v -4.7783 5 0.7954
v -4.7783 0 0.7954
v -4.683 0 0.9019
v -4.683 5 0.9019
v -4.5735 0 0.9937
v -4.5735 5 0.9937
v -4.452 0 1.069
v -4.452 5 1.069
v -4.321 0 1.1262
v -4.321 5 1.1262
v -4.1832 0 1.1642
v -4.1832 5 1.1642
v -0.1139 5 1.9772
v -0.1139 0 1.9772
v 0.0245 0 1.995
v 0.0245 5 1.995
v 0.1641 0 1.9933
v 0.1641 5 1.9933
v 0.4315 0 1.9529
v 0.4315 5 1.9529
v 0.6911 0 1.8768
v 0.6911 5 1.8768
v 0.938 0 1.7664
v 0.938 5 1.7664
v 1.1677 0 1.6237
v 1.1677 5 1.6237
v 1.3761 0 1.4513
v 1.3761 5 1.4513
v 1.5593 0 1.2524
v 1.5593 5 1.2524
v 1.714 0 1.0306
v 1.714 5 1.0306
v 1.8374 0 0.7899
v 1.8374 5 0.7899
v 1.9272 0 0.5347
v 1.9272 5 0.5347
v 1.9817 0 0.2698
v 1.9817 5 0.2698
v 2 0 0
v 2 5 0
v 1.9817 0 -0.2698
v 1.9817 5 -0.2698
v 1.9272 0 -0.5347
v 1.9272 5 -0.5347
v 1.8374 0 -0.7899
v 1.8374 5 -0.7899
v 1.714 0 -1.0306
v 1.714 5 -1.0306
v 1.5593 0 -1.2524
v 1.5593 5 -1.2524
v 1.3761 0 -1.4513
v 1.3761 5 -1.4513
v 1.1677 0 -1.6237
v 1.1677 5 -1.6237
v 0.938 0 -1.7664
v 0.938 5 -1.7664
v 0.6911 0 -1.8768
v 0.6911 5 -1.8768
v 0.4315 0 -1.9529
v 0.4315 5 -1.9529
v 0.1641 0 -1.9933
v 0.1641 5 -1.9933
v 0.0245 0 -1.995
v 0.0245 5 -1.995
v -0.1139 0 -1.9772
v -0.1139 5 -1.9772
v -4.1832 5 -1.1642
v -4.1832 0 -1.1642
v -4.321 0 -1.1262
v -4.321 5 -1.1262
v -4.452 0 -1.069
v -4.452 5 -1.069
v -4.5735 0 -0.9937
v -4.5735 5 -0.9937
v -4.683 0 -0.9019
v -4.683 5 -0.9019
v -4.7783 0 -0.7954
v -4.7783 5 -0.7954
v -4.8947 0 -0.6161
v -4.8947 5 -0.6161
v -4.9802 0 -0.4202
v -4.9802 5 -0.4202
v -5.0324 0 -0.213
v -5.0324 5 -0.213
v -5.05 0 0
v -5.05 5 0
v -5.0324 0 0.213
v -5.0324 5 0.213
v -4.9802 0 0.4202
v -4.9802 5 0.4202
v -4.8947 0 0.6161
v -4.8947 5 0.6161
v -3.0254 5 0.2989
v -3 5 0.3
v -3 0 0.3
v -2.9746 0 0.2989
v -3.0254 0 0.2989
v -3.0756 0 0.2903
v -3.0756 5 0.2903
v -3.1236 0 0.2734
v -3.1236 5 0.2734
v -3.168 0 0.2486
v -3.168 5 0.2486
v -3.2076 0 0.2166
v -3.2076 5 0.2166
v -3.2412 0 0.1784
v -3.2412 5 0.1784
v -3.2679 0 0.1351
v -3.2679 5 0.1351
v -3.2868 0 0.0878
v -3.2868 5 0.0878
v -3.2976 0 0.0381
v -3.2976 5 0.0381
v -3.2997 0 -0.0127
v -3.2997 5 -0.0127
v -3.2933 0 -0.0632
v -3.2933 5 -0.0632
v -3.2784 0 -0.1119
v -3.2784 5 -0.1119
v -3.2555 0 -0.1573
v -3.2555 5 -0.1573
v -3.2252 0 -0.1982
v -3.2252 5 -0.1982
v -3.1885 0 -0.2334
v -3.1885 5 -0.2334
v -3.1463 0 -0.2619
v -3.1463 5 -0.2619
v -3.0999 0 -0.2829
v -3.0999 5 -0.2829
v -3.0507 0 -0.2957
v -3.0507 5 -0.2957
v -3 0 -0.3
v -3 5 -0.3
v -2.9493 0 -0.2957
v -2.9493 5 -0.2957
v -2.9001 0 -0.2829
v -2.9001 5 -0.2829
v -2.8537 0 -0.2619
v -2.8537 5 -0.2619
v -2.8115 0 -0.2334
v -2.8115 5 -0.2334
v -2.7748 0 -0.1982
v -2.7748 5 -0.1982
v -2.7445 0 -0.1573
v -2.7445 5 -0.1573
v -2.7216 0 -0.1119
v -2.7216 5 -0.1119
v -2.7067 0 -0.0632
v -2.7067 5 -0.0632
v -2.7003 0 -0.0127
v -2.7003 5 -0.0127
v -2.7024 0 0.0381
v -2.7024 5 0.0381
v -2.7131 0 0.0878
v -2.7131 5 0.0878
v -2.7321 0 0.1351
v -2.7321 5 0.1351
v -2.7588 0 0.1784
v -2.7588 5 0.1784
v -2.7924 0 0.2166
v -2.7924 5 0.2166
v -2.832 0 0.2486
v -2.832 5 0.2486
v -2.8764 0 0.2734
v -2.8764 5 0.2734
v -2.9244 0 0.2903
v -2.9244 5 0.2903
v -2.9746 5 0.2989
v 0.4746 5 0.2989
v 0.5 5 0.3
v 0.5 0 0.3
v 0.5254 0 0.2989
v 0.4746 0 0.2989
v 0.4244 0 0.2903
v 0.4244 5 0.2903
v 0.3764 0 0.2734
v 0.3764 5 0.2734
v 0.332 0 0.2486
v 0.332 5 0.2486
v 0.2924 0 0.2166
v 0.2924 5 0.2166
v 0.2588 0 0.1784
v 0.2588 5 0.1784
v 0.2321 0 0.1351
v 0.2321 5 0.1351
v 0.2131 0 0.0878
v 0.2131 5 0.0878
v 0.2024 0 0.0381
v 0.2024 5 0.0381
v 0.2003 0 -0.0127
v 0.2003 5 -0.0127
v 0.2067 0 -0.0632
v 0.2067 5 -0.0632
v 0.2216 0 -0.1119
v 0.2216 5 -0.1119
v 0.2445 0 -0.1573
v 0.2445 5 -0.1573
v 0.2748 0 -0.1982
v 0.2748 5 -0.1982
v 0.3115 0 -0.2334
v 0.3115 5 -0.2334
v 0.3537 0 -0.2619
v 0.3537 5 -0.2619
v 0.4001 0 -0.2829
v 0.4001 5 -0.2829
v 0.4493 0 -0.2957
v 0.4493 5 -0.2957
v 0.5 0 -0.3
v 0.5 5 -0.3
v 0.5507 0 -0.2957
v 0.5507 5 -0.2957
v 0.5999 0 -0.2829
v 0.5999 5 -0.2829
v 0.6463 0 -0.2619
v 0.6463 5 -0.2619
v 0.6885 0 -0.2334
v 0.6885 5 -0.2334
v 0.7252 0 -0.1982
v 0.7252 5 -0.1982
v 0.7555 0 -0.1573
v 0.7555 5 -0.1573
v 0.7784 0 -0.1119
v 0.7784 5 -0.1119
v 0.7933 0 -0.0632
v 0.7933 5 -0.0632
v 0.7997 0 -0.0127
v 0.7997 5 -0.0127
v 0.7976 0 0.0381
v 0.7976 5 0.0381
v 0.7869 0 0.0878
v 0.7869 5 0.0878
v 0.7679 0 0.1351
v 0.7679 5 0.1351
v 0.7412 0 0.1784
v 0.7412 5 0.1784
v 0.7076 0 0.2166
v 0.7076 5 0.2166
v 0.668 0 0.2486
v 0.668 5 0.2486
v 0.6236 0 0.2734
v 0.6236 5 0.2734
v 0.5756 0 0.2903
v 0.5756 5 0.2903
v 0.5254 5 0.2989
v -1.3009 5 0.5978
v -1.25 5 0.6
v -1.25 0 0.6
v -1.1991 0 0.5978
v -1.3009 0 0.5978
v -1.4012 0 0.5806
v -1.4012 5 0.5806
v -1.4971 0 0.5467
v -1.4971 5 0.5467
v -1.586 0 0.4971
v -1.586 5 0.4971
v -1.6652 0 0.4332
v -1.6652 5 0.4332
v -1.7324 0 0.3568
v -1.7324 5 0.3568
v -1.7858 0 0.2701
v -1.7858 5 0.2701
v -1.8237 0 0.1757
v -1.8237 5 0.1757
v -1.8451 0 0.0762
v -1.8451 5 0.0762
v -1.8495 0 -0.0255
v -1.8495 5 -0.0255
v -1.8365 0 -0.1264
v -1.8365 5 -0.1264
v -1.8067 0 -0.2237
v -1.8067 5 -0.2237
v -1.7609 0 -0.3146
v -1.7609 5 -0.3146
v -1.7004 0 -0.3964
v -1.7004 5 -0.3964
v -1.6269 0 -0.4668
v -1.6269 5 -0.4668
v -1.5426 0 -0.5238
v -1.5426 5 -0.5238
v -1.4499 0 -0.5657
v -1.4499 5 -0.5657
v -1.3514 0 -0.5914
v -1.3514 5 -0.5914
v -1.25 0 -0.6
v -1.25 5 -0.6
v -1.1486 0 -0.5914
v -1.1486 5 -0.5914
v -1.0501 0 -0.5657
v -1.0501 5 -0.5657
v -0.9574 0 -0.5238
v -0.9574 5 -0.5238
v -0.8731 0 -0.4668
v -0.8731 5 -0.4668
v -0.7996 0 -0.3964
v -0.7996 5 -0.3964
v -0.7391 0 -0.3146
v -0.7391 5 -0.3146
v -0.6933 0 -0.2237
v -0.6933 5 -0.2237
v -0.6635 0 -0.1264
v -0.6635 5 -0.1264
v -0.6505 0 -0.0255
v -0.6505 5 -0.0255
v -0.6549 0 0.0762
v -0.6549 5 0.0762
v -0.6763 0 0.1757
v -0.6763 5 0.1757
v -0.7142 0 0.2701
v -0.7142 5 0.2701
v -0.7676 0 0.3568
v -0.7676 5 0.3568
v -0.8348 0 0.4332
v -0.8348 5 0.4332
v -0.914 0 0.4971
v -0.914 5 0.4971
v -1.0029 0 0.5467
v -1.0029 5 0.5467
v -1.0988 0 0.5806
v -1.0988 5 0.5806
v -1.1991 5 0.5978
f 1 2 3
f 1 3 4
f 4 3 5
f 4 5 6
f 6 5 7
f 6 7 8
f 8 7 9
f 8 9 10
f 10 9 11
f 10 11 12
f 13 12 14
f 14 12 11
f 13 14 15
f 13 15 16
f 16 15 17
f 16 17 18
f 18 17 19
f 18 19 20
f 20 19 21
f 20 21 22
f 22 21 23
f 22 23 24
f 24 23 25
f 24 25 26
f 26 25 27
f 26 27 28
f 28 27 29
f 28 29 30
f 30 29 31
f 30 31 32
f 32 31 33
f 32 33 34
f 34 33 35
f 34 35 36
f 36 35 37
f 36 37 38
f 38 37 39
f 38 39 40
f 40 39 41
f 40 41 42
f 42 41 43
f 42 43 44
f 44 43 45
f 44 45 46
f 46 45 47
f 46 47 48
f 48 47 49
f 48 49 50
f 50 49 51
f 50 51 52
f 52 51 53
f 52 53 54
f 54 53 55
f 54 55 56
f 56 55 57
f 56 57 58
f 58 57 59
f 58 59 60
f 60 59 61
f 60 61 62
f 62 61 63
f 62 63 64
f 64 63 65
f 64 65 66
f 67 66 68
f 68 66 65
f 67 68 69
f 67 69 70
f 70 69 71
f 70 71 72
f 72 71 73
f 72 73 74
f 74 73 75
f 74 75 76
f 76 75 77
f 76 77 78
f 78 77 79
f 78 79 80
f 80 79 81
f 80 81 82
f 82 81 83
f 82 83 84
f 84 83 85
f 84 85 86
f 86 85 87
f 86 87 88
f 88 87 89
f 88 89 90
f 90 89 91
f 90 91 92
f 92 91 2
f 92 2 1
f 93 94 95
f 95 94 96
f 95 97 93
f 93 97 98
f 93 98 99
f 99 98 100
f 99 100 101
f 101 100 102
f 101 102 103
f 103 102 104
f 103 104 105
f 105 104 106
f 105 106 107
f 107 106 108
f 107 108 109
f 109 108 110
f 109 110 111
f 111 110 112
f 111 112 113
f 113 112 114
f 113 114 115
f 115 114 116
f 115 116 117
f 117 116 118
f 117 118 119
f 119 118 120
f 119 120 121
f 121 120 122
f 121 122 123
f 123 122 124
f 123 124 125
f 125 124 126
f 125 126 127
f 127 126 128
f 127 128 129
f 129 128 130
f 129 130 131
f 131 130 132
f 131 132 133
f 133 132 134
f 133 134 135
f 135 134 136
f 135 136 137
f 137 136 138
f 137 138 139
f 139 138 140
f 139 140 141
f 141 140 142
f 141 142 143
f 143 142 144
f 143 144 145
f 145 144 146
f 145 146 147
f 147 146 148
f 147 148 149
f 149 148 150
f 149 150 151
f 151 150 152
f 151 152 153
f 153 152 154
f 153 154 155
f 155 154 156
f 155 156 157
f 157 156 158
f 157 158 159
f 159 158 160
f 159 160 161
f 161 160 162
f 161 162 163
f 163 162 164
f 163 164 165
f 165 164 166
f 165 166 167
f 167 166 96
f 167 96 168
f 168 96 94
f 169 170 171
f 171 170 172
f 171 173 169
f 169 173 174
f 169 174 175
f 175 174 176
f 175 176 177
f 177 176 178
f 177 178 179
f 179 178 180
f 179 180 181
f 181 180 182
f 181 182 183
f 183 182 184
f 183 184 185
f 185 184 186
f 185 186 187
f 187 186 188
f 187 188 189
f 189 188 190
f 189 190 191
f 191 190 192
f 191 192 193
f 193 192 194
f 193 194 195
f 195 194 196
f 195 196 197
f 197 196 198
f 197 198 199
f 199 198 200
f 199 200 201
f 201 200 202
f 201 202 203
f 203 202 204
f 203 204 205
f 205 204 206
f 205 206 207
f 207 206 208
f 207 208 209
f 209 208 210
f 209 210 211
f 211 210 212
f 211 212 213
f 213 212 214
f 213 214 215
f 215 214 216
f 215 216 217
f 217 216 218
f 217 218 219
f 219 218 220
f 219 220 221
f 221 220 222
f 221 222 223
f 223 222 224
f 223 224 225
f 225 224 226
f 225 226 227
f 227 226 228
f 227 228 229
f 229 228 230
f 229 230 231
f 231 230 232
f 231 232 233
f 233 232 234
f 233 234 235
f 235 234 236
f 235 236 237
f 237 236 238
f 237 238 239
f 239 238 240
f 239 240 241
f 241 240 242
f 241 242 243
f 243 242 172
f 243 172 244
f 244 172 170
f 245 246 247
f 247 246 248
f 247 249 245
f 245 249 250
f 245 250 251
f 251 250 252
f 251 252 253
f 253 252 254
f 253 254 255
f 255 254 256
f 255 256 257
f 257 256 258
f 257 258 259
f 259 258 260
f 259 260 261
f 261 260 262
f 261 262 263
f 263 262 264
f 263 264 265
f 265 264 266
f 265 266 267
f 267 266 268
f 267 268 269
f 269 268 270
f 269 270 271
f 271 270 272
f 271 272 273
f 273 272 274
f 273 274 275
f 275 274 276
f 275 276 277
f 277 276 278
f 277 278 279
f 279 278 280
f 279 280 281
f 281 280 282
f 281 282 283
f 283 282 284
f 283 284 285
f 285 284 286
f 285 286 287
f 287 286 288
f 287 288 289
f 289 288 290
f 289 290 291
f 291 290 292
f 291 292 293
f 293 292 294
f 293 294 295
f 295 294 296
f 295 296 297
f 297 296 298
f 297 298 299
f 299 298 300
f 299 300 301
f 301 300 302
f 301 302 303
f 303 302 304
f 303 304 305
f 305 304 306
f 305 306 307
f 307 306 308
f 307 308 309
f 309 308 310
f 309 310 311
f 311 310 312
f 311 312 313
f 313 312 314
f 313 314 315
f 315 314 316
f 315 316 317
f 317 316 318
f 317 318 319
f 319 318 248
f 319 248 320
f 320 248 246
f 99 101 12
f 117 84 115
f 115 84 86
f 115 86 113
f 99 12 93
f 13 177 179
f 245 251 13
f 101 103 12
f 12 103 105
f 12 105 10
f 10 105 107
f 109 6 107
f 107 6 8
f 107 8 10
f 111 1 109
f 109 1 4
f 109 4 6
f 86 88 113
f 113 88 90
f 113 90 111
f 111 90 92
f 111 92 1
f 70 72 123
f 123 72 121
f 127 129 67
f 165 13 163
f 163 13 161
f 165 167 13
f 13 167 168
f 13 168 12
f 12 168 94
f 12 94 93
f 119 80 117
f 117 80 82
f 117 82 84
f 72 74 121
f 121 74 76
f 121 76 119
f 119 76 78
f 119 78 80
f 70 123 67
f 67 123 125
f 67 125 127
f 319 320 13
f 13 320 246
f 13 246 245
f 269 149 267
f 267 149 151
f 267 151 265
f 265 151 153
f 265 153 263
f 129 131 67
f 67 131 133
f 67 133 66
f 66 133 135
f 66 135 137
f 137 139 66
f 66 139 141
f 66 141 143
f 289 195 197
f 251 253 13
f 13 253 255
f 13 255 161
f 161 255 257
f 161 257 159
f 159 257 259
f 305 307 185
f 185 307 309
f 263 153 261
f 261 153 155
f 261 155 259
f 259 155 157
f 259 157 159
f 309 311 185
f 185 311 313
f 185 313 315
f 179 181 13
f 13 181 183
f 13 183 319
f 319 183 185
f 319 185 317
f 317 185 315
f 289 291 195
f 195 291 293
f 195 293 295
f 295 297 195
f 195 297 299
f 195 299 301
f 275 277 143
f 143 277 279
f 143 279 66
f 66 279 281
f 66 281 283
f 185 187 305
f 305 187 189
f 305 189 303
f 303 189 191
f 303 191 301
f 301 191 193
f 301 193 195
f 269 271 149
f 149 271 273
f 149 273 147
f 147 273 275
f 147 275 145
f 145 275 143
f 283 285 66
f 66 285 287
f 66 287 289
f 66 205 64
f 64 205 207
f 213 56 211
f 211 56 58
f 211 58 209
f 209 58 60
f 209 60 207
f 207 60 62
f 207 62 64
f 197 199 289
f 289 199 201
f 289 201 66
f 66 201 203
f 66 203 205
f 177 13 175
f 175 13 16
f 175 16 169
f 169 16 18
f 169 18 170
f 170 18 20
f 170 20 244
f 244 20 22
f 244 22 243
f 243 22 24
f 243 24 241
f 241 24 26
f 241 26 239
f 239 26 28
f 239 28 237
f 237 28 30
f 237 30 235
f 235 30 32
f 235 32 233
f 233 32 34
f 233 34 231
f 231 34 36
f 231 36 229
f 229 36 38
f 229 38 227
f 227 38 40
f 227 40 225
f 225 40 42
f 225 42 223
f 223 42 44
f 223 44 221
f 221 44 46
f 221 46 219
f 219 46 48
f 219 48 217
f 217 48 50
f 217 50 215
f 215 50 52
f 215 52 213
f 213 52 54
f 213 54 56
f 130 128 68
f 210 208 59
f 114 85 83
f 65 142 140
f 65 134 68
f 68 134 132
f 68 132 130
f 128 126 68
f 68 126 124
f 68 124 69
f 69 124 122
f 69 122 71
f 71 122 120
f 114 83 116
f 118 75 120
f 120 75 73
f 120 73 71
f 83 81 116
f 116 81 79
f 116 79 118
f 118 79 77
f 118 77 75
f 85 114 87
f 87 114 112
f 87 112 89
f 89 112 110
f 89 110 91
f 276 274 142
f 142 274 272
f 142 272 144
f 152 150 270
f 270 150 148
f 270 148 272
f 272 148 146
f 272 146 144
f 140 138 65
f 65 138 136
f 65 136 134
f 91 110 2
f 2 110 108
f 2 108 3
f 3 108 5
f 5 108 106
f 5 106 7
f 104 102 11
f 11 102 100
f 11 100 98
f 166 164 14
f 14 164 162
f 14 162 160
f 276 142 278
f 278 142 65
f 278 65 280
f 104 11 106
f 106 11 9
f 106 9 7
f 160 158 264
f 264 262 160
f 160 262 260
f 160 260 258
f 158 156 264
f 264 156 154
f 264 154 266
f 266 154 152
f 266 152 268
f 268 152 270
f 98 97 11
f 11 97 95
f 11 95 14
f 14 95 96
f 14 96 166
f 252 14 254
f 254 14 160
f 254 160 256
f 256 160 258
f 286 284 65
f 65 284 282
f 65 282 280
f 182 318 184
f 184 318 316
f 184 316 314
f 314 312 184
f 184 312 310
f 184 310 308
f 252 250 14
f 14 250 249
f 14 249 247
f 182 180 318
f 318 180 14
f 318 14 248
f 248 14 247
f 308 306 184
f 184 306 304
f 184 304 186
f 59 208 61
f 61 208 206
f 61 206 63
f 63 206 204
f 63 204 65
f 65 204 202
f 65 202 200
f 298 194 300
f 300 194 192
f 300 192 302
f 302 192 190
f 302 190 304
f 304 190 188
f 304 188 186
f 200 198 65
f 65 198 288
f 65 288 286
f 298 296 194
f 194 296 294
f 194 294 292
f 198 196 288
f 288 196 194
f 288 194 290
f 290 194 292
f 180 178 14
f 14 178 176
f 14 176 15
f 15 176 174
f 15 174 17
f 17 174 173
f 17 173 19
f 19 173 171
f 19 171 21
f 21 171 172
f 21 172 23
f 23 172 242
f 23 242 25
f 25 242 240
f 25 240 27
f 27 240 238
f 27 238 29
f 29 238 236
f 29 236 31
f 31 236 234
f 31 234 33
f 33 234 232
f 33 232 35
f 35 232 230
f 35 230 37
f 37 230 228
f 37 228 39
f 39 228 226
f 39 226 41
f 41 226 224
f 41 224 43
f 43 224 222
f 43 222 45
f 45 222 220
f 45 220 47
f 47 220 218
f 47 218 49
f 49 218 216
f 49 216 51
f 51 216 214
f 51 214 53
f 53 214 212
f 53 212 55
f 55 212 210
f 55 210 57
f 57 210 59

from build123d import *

# Parameters (mm, degrees)
SKETCH1_R           = 0.3
SKETCH1_R_2         = 0.6
BOSS_EXTRUDE1_DEPTH = 5


with BuildPart() as part:
    # Sketch1 → Boss-Extrude1 (new body)
    with BuildSketch(Plane(origin=(0, 0, 0), x_dir=(1, 0, 0), z_dir=(0, 1, 0))):
        with BuildLine():
            ThreePointArc((0.1641009, 1.993256355), (0.024548565, 1.994973575), (-0.113883759, 1.977245221))
            Line((-0.113883759, 1.977245221), (-1.25, 1.750241174))
            Line((-1.25, 1.750241174), (-4.183235691, 1.164159973))
            ThreePointArc((-4.183235691, 1.164159973), (-4.514100231, 1.033532975), (-4.77830642, 0.795352694))
            ThreePointArc((-4.77830642, 0.795352694), (-5.05, 0), (-4.77830642, -0.795352694))
            ThreePointArc((-4.77830642, -0.795352694), (-4.514100231, -1.033532975), (-4.183235691, -1.164159973))
            Line((-4.183235691, -1.164159973), (-1.25, -1.750241174))
            Line((-1.25, -1.750241174), (-0.11388376, -1.977245221))
            ThreePointArc((-0.11388376, -1.977245221), (0.024548564, -1.994973575), (0.164100898, -1.993256355))
            ThreePointArc((0.164100898, -1.993256355), (2, -1e-09), (0.1641009, 1.993256355))
        make_face()
        with Locations(Location((-3, 0, 0), (0, 0, 270))):
            Circle(SKETCH1_R, mode=Mode.SUBTRACT)
        with Locations(Location((-1.25, 0, 0), (0, 0, 270))):
            Circle(SKETCH1_R_2, mode=Mode.SUBTRACT)
        with Locations(Location((0.5, 0, 0), (0, 0, 270))):
            Circle(SKETCH1_R, mode=Mode.SUBTRACT)
    extrude(amount=BOSS_EXTRUDE1_DEPTH)


solid = part.part
